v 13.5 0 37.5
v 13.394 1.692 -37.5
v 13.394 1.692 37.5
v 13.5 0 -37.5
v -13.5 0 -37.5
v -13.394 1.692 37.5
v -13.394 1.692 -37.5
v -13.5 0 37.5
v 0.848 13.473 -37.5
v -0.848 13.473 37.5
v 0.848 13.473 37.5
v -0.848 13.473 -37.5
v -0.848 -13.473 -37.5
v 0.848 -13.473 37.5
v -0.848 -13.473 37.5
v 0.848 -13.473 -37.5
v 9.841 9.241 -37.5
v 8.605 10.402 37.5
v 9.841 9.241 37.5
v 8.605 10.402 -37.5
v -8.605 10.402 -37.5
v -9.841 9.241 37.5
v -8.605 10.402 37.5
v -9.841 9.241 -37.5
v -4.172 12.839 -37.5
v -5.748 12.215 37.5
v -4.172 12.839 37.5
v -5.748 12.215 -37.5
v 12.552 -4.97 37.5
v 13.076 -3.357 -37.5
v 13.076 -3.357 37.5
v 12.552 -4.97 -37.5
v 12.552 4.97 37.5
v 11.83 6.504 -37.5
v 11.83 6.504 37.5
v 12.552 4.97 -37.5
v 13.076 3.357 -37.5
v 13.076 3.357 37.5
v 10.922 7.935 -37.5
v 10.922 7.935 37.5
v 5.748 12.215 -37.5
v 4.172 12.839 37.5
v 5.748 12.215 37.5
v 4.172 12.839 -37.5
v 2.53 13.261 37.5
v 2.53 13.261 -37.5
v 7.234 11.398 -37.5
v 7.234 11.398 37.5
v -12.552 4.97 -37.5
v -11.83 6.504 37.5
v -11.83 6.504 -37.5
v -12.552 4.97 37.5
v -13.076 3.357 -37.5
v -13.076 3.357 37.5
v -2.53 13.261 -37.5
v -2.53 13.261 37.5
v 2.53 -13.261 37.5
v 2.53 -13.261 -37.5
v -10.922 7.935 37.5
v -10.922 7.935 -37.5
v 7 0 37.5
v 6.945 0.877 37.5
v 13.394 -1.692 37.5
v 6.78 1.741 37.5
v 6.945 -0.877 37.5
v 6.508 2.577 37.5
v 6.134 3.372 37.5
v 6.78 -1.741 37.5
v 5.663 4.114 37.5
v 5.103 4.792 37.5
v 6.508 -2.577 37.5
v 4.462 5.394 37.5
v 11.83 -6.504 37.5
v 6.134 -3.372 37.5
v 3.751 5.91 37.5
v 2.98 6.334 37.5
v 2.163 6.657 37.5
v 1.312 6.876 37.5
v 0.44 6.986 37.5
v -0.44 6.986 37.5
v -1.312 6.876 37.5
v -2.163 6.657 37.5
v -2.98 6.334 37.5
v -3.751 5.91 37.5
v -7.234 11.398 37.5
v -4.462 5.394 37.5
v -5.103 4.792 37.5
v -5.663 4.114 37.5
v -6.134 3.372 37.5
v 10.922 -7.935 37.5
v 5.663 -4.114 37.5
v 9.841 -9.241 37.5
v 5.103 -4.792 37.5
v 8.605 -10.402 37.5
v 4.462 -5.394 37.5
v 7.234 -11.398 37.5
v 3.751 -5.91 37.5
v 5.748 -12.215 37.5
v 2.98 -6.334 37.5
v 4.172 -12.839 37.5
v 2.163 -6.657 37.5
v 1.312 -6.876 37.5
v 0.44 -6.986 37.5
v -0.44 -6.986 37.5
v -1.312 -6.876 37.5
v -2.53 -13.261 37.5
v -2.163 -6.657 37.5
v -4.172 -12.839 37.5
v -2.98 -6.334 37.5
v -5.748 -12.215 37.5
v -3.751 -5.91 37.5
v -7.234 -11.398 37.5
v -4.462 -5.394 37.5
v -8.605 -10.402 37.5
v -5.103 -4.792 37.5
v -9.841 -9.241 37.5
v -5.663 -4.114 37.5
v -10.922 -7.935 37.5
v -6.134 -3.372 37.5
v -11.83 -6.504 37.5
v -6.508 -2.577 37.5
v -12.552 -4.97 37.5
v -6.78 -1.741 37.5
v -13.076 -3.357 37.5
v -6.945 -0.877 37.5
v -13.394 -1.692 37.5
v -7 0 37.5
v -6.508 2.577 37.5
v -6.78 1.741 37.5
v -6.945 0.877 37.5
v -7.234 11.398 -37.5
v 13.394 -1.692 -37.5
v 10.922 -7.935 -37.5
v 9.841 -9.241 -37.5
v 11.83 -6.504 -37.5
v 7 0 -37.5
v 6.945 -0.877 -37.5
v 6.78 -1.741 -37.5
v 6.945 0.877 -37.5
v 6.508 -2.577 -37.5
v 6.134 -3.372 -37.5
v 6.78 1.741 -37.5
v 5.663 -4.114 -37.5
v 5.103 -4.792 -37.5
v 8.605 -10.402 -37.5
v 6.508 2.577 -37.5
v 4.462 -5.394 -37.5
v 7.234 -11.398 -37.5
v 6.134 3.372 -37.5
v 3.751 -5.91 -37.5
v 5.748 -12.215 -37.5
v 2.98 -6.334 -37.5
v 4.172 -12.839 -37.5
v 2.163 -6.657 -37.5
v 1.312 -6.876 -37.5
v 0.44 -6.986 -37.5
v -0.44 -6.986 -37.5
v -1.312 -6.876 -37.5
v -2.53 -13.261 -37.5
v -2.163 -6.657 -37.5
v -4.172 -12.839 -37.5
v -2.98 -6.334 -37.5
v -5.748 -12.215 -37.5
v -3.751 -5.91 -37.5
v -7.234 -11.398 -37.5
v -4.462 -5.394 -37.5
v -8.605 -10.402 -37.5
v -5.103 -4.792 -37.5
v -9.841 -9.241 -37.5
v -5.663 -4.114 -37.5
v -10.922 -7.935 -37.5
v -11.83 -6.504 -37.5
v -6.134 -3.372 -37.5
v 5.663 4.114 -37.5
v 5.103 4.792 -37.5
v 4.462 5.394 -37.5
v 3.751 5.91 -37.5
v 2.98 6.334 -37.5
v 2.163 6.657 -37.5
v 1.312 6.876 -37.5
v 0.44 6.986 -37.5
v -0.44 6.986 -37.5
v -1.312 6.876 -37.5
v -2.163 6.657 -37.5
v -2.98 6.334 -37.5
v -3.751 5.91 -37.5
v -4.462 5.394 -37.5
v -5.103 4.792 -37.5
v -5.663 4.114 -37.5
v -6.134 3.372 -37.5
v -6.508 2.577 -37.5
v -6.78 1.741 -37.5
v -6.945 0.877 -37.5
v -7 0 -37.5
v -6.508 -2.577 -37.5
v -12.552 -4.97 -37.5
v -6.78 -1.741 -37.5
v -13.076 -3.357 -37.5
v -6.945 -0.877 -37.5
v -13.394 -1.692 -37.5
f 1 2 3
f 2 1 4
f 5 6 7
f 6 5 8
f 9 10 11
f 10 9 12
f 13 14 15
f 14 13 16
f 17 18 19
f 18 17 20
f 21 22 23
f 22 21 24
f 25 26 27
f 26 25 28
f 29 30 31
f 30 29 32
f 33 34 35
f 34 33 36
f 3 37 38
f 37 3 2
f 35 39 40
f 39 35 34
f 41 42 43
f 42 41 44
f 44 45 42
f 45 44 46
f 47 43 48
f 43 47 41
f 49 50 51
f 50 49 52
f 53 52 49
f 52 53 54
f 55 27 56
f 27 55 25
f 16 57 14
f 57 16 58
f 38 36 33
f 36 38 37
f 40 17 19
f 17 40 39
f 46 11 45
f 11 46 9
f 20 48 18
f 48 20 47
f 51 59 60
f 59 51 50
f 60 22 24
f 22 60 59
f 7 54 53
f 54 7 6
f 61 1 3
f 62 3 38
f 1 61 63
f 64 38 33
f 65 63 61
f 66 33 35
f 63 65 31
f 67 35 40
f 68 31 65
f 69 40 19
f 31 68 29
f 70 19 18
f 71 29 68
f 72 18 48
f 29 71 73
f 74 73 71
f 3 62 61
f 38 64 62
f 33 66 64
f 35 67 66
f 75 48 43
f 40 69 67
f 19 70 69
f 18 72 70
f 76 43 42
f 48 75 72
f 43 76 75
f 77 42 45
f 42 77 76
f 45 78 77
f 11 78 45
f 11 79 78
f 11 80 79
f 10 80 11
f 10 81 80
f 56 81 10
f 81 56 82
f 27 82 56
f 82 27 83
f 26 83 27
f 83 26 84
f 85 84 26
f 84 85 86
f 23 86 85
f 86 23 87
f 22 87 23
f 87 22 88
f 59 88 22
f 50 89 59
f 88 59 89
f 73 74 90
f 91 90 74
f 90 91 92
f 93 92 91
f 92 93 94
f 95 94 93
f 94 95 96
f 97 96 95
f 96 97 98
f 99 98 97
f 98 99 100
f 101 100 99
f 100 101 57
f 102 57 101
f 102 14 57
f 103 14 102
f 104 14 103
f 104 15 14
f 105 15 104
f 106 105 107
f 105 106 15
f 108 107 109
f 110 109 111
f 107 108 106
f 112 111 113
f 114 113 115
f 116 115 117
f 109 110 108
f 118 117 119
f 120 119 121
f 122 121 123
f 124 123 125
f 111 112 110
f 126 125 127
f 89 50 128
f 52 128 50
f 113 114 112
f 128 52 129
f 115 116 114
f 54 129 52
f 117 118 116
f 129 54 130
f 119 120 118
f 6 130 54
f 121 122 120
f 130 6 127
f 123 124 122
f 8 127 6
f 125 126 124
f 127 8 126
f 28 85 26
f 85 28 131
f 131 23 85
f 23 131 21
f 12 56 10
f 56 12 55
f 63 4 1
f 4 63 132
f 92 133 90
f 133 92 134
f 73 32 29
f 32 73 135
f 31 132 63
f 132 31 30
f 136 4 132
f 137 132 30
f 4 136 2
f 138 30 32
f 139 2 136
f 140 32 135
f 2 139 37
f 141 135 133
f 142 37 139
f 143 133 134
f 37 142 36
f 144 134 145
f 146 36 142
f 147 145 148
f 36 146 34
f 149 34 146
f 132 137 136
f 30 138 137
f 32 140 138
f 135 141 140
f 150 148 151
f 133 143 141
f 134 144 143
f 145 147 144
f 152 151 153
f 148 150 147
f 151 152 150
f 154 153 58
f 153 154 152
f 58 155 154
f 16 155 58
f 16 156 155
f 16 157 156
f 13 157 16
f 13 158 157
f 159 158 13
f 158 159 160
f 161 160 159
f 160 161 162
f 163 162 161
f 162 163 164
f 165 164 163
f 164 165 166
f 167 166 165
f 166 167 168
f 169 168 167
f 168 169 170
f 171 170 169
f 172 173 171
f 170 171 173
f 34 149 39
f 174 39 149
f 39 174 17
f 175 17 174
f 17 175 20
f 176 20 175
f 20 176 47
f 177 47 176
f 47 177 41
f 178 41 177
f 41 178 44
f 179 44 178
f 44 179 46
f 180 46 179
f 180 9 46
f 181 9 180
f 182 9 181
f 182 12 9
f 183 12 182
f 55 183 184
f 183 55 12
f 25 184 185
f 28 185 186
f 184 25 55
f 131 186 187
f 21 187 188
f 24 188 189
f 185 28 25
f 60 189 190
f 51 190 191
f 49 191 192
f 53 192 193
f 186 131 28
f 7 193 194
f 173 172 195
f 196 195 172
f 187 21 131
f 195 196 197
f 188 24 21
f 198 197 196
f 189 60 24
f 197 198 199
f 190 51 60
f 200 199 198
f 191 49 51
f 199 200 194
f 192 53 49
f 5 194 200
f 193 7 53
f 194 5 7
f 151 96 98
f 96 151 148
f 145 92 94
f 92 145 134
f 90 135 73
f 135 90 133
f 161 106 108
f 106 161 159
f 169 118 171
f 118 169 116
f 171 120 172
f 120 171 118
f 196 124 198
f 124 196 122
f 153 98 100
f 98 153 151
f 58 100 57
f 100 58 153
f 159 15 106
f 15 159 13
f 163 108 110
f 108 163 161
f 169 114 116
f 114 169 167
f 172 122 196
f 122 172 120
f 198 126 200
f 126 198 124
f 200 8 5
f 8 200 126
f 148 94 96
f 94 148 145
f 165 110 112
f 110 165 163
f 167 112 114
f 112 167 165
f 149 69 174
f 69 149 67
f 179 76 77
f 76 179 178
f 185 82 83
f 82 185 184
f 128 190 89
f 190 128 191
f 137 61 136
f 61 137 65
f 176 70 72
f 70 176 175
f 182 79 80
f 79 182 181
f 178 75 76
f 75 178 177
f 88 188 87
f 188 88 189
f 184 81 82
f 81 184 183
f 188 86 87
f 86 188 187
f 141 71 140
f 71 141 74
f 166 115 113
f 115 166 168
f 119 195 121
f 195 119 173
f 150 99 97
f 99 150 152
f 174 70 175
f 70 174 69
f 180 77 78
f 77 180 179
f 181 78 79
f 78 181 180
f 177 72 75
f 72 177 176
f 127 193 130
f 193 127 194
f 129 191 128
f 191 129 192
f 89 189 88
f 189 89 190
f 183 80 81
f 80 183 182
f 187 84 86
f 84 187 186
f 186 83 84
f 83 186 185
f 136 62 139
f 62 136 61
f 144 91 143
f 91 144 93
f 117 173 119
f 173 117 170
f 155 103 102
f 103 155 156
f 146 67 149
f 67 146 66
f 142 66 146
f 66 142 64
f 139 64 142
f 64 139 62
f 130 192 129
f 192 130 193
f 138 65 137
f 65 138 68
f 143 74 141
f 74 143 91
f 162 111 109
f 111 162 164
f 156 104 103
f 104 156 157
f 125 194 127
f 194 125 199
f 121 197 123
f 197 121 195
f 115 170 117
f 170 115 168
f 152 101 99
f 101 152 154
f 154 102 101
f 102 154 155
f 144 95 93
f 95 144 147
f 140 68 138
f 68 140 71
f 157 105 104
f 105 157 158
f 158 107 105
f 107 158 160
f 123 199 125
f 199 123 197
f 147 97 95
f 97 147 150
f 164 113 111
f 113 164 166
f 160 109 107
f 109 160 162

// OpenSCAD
$fn = 50;


difference() {
	union() {
		translate(v = [0, 0, -37.5000000000]) {
			cylinder(h = 75, r = 13.5000000000);
		}
	}
	union() {
		translate(v = [0, 0, -100.0000000000]) {
			cylinder(h = 200, r = 7);
		}
	}
}
